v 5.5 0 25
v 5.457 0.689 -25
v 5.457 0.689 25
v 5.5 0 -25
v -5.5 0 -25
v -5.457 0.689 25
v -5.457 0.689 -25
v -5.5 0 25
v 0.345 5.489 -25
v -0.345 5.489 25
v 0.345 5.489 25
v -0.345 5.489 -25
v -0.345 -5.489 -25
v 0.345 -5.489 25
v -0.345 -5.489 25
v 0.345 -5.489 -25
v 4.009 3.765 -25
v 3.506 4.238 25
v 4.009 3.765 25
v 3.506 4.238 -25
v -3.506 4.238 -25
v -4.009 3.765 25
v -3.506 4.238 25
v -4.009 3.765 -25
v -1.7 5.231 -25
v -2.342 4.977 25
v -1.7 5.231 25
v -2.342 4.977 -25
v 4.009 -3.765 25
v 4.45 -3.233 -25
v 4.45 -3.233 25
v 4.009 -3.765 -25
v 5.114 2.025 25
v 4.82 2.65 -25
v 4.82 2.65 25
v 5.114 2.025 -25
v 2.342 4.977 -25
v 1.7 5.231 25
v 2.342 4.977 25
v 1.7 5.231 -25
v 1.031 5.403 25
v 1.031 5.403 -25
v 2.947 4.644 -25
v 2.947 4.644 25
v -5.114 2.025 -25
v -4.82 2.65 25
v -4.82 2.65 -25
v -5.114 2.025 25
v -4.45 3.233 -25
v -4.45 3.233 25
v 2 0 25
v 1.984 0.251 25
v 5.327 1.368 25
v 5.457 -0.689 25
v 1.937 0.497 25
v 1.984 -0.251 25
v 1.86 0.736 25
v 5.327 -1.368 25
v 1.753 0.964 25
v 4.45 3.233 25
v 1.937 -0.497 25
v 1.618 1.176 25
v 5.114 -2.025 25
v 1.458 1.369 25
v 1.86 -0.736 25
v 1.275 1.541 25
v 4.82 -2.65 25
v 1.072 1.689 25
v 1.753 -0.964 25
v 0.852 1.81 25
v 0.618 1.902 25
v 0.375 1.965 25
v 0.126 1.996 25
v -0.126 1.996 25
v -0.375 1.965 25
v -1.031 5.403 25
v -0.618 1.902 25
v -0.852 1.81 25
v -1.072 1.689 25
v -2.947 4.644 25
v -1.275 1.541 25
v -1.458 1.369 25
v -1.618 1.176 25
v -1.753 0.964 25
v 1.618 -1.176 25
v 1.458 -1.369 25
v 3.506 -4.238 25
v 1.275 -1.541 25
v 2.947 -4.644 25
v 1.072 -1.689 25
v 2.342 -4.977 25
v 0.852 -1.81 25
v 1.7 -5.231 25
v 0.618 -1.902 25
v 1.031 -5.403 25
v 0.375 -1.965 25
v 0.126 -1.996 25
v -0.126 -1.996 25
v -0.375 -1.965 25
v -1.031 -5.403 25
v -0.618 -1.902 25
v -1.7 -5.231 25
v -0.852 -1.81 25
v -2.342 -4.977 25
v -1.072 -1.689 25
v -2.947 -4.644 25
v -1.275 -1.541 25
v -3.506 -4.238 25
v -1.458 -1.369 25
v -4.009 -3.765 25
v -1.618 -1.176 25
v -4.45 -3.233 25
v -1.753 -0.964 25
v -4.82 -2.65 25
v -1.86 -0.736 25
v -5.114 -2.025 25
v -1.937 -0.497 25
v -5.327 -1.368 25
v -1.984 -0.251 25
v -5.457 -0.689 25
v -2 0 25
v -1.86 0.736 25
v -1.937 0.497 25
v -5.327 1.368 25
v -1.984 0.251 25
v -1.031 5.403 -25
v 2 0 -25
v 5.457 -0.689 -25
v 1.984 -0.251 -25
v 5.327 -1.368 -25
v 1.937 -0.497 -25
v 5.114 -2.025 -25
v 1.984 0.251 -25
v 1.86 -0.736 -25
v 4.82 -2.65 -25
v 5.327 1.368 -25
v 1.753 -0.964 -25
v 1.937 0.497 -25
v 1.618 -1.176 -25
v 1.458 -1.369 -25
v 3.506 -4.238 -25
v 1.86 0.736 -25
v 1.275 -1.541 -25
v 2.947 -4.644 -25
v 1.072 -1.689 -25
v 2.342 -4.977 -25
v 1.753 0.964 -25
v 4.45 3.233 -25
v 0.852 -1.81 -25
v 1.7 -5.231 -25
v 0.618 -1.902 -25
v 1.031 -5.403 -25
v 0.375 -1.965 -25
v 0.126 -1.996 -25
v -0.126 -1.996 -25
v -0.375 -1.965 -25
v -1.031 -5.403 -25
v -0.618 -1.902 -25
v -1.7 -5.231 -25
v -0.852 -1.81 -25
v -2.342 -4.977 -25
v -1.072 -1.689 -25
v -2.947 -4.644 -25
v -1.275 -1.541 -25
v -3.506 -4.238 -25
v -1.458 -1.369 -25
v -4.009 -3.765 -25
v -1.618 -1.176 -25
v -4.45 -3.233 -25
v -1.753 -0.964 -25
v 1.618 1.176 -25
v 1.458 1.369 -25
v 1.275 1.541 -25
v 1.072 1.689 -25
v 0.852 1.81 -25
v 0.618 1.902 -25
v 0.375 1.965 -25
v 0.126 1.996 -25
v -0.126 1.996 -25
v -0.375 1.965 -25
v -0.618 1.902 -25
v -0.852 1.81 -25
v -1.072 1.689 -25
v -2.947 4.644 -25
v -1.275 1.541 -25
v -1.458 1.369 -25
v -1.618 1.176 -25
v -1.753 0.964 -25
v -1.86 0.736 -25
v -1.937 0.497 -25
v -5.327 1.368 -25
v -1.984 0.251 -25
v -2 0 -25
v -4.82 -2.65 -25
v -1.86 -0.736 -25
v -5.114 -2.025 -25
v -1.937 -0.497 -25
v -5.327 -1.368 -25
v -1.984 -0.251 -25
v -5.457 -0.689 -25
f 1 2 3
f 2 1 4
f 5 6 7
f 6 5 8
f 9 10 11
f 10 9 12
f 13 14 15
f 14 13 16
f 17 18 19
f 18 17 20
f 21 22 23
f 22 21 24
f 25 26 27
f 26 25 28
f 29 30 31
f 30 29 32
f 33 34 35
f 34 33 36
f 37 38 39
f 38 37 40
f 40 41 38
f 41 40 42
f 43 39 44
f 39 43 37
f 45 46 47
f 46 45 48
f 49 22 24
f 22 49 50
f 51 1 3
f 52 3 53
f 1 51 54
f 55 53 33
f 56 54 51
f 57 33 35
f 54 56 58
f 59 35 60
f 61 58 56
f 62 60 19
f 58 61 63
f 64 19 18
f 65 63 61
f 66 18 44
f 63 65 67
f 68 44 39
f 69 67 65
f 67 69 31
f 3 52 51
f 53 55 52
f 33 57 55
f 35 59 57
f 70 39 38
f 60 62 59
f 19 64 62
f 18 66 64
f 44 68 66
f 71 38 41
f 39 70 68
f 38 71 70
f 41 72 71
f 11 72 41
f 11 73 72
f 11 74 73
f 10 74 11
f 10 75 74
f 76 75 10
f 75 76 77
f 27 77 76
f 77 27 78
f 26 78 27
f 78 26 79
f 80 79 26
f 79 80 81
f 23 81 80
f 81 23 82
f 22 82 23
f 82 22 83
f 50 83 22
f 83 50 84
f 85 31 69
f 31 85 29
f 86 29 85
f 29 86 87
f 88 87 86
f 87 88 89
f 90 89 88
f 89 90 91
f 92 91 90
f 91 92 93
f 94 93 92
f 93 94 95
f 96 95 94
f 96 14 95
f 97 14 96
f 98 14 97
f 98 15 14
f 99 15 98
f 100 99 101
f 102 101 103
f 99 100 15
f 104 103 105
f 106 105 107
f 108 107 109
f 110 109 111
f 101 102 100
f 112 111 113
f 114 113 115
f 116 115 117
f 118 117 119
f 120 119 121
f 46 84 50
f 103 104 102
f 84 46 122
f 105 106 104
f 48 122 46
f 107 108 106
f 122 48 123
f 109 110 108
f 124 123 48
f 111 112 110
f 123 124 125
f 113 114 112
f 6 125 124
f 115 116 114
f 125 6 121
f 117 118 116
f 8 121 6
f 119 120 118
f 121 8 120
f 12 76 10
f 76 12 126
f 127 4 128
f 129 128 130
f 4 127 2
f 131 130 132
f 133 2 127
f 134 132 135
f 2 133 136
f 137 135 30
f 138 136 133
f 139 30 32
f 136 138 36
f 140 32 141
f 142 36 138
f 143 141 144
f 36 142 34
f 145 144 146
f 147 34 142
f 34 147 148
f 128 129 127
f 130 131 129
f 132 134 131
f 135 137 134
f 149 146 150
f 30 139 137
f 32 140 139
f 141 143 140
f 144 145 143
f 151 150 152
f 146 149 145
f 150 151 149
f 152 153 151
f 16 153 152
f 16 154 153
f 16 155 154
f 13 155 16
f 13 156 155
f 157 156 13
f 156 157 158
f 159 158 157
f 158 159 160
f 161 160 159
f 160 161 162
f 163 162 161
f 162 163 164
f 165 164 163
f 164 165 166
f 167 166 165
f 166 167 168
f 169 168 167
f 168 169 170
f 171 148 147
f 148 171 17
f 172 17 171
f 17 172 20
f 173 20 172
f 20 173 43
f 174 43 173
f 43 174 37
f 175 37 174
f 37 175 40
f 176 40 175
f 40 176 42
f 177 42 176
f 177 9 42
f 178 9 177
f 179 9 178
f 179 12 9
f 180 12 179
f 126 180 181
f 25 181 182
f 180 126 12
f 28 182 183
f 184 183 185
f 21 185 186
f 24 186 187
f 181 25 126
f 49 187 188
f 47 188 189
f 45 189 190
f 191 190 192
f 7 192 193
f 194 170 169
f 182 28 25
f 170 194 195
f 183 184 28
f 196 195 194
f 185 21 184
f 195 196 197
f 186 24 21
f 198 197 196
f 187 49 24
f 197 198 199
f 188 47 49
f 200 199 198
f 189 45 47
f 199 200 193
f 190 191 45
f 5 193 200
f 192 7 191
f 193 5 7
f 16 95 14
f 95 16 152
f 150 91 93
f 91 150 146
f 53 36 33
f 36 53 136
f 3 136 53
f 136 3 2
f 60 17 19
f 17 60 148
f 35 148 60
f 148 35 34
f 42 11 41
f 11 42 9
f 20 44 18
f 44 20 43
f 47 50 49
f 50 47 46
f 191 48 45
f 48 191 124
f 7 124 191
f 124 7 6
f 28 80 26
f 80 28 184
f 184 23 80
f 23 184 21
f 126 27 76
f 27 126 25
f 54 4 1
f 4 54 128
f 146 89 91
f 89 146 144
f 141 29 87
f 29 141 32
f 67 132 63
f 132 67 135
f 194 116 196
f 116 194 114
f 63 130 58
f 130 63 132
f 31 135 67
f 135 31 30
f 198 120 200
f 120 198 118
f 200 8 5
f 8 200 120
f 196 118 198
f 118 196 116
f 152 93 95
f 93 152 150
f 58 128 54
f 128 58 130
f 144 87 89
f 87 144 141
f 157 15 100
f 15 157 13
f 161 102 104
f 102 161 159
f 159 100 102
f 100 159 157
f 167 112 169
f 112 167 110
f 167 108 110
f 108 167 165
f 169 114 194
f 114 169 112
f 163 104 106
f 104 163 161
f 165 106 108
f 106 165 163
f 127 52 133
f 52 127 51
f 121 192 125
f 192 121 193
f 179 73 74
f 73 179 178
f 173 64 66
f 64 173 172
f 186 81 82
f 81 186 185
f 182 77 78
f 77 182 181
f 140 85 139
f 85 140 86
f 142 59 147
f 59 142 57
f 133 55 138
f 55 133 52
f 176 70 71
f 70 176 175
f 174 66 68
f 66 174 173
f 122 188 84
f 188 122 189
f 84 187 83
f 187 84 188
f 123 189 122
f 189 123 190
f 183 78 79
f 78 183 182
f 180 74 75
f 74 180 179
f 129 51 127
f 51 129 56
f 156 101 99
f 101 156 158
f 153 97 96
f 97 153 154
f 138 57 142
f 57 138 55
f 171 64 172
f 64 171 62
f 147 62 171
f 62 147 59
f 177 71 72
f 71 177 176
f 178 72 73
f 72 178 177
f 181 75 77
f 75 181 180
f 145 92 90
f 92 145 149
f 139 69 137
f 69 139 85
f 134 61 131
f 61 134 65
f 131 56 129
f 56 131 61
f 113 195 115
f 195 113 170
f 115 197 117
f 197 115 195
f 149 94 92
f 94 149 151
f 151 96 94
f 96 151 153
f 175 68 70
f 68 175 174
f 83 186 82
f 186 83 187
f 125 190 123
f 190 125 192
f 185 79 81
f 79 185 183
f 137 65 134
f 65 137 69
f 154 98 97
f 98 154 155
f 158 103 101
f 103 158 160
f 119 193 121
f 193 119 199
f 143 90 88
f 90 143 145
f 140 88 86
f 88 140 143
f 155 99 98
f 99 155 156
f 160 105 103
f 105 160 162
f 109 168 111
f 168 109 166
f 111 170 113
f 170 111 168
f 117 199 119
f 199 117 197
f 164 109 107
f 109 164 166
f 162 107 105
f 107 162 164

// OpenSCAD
$fn = 50;


difference() {
	union() {
		translate(v = [0, 0, -25.0000000000]) {
			cylinder(h = 50, r = 5.5000000000);
		}
	}
	union() {
		translate(v = [0, 0, -100.0000000000]) {
			cylinder(h = 200, r = 2);
		}
	}
}
